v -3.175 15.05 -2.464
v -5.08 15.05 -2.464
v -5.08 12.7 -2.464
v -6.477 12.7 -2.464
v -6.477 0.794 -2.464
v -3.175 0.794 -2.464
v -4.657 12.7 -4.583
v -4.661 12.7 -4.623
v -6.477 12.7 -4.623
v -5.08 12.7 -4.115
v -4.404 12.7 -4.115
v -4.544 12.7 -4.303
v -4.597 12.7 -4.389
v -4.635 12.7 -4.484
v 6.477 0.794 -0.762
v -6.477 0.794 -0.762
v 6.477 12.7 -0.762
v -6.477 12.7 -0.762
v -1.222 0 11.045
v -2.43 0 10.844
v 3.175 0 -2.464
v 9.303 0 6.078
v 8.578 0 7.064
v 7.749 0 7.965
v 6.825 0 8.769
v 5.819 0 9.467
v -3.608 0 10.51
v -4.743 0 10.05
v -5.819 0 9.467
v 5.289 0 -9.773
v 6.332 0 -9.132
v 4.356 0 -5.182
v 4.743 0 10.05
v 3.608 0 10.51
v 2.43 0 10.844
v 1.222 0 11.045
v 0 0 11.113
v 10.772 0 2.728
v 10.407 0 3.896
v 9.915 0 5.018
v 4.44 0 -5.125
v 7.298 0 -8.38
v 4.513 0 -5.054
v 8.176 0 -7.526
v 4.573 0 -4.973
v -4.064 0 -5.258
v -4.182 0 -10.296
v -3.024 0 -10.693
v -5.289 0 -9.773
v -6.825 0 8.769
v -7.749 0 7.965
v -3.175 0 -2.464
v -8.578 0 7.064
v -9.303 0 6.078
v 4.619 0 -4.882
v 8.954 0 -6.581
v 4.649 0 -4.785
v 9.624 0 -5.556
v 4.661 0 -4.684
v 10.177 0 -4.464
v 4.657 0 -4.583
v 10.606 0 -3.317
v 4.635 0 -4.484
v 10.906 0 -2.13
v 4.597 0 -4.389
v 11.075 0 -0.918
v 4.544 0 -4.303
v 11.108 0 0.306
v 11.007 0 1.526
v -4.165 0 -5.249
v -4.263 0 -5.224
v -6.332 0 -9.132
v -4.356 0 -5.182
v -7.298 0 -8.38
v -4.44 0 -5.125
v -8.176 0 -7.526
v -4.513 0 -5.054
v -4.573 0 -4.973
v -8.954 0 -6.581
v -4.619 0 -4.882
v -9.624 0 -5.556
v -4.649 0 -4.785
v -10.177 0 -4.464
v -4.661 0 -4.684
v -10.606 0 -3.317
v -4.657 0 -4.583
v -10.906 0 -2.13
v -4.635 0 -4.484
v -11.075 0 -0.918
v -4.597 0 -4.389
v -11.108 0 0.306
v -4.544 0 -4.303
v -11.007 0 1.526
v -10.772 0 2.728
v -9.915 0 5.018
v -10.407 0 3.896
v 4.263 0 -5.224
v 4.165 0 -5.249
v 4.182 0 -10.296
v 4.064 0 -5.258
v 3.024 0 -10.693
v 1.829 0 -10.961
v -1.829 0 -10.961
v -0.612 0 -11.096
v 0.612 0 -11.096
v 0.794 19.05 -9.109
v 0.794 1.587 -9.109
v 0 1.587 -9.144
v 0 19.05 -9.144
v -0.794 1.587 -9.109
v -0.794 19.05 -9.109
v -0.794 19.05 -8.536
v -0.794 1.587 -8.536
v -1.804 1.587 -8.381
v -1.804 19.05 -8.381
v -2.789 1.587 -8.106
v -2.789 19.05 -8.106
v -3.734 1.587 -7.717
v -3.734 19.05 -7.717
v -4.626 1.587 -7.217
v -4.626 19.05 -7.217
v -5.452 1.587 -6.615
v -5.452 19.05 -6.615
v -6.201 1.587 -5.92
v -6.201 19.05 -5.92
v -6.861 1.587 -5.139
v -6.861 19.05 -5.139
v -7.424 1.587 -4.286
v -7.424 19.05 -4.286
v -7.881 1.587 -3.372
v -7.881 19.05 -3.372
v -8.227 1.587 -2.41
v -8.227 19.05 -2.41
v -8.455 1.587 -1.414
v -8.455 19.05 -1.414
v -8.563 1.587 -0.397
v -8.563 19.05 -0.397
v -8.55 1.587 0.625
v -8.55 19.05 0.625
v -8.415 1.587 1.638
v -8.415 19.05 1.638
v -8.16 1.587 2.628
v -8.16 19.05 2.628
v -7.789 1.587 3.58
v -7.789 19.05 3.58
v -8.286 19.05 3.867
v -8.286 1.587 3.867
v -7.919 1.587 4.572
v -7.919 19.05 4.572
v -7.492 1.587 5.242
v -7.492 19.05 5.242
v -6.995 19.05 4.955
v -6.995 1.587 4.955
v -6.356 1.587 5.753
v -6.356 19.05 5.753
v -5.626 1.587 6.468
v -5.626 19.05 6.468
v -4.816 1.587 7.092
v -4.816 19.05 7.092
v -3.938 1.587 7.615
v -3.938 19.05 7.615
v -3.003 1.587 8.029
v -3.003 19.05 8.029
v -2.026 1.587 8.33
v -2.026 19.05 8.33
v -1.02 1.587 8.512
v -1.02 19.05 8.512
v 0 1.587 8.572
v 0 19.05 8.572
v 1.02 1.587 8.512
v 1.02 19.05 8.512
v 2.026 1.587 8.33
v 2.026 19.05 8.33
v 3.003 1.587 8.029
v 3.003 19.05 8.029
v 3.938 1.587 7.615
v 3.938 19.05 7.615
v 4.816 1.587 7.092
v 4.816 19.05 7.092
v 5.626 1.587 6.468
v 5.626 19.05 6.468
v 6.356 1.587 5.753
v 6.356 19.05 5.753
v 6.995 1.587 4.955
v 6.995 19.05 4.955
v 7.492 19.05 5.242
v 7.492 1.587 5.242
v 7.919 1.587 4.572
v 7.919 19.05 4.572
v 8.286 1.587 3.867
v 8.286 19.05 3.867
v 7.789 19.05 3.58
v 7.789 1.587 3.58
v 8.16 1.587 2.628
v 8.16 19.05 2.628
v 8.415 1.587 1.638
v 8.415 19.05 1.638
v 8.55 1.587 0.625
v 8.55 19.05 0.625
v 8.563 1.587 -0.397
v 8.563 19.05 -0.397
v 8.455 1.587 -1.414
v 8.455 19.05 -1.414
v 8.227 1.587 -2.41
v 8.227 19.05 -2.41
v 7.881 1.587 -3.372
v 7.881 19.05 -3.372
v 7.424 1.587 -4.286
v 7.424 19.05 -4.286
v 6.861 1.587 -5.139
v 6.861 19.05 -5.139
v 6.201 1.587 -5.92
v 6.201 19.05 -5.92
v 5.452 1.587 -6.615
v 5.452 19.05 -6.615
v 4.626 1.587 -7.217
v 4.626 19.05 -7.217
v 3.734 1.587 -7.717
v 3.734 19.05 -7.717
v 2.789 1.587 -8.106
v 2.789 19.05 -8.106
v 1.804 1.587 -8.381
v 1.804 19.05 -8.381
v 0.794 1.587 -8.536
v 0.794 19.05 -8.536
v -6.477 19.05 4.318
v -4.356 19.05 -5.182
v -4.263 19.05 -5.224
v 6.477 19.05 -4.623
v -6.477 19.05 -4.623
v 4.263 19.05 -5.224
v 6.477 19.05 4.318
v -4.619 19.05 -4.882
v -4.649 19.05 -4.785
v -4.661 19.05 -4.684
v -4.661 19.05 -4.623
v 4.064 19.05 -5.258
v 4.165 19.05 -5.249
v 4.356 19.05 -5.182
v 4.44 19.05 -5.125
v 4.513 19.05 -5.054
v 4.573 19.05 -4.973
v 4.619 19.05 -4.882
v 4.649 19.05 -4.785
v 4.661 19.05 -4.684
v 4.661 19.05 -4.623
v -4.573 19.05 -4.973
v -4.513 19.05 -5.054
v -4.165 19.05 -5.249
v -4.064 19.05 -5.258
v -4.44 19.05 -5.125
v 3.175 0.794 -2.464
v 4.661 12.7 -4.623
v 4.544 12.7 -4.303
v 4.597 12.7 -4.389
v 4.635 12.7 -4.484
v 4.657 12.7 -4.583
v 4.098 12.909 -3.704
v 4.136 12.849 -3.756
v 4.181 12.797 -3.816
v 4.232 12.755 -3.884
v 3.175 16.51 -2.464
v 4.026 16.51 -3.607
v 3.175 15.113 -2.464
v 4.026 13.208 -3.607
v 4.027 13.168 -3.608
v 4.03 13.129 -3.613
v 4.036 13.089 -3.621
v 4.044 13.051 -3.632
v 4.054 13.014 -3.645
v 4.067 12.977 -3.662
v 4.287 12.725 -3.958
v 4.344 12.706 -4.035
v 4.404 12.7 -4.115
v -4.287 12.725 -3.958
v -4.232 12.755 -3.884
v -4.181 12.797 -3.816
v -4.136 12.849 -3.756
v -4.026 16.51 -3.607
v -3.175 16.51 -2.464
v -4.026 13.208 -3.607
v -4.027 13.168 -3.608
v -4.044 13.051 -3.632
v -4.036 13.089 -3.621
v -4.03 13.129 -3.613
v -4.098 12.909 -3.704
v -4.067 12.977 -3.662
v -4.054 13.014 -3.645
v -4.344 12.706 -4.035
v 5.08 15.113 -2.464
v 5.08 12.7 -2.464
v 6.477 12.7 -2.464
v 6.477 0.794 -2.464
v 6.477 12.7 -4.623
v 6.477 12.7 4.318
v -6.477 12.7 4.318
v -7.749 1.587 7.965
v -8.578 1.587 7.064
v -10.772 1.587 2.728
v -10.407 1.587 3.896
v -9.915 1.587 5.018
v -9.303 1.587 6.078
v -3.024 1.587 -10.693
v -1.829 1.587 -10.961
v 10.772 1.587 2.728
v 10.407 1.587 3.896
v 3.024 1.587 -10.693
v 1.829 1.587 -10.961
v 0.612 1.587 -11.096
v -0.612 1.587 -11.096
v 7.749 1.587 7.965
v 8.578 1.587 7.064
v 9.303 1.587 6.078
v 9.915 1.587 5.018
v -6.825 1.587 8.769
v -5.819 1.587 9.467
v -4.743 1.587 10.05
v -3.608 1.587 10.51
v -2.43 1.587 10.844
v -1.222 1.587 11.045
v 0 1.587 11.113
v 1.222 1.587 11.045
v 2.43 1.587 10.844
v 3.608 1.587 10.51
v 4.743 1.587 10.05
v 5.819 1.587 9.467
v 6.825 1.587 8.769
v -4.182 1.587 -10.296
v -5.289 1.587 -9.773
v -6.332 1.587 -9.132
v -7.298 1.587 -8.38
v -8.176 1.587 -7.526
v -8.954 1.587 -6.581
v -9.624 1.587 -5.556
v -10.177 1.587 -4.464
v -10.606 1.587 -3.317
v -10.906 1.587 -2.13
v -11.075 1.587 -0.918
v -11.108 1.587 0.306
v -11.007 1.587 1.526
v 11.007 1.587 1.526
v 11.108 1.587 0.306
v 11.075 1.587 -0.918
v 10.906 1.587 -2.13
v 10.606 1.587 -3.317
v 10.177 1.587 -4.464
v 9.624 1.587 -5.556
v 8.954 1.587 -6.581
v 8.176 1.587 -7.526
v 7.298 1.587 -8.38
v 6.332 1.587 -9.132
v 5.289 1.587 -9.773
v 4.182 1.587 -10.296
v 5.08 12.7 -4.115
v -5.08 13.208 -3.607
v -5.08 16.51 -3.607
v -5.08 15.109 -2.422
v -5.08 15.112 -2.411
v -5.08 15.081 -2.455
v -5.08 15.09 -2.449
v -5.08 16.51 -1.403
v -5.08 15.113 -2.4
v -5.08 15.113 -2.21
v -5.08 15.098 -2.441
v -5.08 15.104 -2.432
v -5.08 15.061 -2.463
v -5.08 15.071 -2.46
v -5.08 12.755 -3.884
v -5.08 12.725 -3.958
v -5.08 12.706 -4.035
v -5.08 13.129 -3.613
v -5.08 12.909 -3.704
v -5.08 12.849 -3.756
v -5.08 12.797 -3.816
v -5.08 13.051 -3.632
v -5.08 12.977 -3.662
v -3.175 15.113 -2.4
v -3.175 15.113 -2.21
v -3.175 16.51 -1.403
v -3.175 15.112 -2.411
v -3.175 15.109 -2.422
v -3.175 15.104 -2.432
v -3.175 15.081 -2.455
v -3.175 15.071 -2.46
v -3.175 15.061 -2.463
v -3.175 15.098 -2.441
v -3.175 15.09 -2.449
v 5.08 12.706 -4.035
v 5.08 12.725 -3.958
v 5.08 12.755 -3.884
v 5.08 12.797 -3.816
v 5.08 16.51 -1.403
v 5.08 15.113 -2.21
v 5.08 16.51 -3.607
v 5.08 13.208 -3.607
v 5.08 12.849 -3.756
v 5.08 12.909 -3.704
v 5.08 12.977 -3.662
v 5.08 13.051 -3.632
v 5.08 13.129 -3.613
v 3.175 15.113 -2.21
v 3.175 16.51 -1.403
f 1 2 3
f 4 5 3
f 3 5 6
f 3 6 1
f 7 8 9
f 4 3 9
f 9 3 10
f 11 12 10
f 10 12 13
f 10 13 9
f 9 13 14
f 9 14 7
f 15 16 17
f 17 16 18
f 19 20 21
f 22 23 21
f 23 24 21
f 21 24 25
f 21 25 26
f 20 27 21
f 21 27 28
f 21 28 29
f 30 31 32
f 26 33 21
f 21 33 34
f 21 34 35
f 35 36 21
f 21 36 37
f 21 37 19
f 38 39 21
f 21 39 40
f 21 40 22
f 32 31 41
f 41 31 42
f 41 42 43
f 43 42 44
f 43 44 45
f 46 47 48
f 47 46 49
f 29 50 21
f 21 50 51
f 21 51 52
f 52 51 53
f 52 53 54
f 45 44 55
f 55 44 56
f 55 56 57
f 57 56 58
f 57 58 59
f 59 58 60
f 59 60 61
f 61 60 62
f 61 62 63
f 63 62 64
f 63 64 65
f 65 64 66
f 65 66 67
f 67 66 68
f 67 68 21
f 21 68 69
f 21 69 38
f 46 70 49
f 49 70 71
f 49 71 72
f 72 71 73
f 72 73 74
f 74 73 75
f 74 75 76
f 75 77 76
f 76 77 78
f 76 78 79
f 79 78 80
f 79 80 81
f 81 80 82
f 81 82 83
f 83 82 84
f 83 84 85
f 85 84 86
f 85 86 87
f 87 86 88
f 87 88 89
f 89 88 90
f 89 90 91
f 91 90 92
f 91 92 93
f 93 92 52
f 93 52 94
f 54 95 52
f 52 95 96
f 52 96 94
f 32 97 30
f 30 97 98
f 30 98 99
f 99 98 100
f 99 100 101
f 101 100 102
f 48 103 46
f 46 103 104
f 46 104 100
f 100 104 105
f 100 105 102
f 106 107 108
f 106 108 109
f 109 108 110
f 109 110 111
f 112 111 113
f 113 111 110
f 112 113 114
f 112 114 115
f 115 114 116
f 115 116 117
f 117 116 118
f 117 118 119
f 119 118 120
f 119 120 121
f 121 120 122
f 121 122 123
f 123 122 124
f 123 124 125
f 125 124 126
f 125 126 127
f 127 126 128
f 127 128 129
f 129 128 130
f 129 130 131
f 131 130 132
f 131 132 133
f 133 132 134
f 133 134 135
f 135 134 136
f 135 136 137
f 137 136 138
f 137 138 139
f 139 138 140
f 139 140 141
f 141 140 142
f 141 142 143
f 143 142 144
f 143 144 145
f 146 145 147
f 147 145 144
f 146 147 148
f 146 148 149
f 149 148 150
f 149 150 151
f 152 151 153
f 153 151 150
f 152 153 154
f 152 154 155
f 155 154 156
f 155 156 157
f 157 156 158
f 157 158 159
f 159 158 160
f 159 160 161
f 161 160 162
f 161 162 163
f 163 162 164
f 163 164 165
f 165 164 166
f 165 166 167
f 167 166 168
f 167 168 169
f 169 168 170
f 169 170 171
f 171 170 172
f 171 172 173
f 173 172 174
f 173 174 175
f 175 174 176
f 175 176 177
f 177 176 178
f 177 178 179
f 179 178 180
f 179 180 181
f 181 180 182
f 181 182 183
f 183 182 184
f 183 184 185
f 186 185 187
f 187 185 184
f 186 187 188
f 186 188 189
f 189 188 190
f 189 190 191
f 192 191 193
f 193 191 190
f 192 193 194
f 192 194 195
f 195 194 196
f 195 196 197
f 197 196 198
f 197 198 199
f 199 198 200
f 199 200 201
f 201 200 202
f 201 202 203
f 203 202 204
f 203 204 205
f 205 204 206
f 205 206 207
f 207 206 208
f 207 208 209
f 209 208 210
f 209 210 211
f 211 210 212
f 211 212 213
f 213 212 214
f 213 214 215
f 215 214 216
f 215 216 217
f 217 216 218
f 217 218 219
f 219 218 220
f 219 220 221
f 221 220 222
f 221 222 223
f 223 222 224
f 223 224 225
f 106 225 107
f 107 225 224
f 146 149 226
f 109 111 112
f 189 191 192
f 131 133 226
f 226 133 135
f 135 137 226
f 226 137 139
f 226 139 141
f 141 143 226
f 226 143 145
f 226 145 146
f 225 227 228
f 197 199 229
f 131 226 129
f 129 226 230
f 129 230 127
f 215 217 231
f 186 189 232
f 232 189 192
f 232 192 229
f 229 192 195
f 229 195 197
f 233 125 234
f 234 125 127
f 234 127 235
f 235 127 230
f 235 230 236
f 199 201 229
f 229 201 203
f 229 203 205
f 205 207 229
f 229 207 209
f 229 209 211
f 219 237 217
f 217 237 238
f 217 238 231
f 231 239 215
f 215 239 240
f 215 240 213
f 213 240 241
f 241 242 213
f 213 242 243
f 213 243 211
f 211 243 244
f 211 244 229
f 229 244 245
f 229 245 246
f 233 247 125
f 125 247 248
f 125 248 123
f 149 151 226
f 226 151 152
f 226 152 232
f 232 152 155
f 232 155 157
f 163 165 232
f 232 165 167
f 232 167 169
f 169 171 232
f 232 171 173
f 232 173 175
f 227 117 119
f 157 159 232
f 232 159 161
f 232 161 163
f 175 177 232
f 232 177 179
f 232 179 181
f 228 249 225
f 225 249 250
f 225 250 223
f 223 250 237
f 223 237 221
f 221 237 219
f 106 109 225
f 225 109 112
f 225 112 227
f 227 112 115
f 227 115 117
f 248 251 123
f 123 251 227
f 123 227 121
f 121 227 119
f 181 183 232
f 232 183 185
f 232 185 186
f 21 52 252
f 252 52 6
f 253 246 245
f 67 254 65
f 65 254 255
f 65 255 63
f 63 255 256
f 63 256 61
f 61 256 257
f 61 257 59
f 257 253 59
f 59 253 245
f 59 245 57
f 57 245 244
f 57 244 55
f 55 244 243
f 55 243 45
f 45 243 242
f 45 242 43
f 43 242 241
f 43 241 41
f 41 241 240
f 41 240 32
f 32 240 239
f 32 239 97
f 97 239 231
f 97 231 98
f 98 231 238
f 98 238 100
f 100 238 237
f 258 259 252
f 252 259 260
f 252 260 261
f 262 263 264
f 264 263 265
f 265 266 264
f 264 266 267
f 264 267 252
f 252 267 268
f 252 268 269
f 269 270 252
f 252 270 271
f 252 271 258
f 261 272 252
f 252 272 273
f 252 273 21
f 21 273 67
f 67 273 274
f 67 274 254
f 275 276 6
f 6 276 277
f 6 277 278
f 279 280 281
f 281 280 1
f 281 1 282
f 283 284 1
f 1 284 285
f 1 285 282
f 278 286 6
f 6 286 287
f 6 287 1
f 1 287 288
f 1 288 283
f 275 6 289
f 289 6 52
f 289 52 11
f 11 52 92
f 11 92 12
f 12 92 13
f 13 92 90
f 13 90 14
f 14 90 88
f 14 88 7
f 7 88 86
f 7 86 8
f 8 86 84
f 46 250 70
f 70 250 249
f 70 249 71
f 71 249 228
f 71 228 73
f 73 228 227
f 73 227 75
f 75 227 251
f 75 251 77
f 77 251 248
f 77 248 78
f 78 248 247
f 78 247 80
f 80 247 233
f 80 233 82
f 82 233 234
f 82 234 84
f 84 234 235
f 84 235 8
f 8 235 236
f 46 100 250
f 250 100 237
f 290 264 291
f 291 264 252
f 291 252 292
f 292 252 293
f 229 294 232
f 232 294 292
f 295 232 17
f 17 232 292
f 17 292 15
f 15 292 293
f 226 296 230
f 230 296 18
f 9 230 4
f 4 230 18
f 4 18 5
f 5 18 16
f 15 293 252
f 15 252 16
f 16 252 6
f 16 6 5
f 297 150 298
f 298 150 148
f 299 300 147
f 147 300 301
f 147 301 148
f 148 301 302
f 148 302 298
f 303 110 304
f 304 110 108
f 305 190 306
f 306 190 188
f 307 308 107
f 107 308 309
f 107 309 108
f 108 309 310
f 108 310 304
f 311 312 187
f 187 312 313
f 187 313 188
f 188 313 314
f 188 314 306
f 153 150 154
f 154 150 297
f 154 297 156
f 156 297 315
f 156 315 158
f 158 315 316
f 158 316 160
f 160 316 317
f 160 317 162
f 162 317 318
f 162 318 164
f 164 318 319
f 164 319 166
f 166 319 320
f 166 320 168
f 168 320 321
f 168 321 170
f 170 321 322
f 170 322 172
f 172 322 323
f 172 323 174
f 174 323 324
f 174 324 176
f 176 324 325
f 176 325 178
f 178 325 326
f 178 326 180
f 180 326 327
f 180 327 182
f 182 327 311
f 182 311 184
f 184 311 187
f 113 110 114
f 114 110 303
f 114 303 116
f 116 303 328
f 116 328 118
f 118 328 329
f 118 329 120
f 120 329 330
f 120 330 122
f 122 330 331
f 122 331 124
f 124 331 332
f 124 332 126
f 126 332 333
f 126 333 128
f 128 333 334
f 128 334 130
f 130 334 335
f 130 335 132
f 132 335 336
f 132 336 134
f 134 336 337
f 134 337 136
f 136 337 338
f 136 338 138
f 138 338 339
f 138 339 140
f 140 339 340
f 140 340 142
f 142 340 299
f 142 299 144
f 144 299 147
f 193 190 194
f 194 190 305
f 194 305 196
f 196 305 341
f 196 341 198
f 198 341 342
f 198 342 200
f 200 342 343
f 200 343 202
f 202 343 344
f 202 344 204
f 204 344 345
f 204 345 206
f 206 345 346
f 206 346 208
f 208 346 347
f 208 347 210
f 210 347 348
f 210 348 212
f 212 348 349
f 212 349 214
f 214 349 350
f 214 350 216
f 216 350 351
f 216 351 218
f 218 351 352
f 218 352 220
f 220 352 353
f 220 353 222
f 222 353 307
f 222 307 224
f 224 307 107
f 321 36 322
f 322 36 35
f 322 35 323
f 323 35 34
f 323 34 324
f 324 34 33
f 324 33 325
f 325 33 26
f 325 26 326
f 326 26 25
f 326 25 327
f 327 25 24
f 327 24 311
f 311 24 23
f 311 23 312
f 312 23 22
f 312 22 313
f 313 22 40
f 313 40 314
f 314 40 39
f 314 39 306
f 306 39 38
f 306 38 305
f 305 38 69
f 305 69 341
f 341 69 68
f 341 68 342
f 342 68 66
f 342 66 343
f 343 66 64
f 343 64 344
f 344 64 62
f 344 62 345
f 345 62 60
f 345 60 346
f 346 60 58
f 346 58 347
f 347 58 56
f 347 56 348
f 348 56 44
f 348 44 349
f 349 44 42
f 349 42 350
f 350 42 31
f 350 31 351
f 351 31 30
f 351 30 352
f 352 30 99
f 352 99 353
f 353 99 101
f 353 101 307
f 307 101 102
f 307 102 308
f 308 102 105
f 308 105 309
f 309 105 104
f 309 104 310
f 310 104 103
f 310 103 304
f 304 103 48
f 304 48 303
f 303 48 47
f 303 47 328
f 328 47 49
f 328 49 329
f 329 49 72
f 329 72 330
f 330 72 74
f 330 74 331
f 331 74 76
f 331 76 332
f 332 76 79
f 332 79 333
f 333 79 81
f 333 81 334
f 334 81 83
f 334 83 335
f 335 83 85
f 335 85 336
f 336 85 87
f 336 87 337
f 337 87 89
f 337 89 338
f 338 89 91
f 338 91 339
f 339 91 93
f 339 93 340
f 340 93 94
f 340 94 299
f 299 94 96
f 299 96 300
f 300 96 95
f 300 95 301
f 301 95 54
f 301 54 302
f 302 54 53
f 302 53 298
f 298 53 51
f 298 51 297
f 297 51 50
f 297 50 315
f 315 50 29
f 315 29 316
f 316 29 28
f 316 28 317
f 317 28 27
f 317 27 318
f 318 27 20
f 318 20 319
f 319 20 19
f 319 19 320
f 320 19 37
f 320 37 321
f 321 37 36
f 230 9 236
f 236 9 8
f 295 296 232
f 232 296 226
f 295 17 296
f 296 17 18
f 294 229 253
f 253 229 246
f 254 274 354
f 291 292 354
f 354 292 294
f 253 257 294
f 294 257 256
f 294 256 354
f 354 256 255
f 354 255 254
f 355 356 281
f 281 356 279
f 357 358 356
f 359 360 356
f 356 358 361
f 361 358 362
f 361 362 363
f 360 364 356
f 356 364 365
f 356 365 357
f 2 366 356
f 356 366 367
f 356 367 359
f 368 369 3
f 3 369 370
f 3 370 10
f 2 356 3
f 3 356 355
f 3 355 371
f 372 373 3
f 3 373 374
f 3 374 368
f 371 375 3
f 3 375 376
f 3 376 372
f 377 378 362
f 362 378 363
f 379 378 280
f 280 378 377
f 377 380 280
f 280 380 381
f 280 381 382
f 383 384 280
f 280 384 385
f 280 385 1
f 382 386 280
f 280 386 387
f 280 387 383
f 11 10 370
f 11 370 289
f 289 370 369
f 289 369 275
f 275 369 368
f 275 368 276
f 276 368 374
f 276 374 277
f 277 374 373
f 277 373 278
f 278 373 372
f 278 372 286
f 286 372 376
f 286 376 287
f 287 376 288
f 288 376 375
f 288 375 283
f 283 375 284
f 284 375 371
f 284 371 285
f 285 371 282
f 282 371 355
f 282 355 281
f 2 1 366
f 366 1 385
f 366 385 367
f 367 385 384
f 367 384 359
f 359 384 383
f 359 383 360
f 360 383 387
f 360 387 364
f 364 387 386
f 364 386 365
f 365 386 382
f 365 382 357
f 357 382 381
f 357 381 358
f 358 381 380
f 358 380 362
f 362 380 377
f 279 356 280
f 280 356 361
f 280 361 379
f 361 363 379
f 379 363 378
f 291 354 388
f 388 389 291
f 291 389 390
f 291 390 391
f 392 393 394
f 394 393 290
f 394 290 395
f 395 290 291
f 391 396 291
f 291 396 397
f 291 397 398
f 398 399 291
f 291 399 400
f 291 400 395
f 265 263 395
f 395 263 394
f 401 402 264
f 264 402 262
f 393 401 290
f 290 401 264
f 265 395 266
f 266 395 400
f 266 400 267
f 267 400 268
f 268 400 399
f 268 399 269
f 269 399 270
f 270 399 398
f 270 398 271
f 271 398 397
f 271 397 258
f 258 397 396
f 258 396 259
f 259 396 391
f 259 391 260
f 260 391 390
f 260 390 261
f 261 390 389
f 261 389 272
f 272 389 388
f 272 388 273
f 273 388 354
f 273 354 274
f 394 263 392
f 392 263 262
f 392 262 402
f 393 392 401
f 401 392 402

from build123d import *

# Parameters (mm, degrees)
BOSS_EXTRUDE1_DEPTH  = 19.05
CUT_EXTRUDE1_DEPTH   = 23.803574111
CUT_EXTRUDE2_DEPTH   = 18.25625
SKETCH6_W            = 0.608326788
SKETCH6_H            = 1.5875
SKETCH8_W            = 2.576826788
SKETCH8_H            = 1.5875
SKETCH9_W            = 12.954
SKETCH9_H            = 5.08
SKETCH9_H_2          = 2.159
CUT_EXTRUDE3_DEPTH   = 6.35
BOSS_EXTRUDE2_DEPTH  = 2.54
SKETCH11_W           = 1.905
SKETCH11_H           = 0.127
BOSS_EXTRUDE3_DEPTH  = 0.254
FILLET1_R            = 0.508
FILLET2_R            = 0.0635
BOSS_EXTRUDE4_DEPTH  = 1.27
BOSS_EXTRUDE5_DEPTH  = 1.905
FILLET1_OF_MIRROR1_R = 0.508


with BuildPart() as part:
    # Sketch1 → Boss-Extrude1 (new body)
    with BuildSketch(Plane(origin=(0, 0, 0), x_dir=(1, 0, 0), z_dir=(0, 1, 0))):
        with BuildLine():
            Line((-0.79375, 9.109483901), (-0.79375, 8.535673212))
            ThreePointArc((-0.79375, 8.535673212), (-7.424002774, 4.28625), (-7.78898484, -3.580428942))
            Line((-7.78898484, -3.580428942), (-8.285919473, -3.867334286))
            ThreePointArc((-8.285919473, -3.867334286), (-7.918936292, -4.572), (-7.492169473, -5.242149615))
            Line((-7.492169473, -5.242149615), (-6.99523484, -4.95524427))
            ThreePointArc((-6.99523484, -4.95524427), (0, -8.5725), (6.99523484, -4.95524427))
            Line((6.99523484, -4.95524427), (7.492169473, -5.242149615))
            ThreePointArc((7.492169473, -5.242149615), (7.918936292, -4.572), (8.285919473, -3.867334286))
            Line((8.285919473, -3.867334286), (7.78898484, -3.580428942))
            ThreePointArc((7.78898484, -3.580428942), (7.424002774, 4.28625), (0.79375, 8.535673212))
            Line((0.79375, 8.535673212), (0.79375, 9.109483901))
            ThreePointArc((0.79375, 9.109483901), (0, 9.144), (-0.79375, 9.109483901))
        make_face()
    extrude(amount=BOSS_EXTRUDE1_DEPTH)

    # Sketch2 → Cut-Extrude1 (cut, through all)
    with BuildSketch(Plane(origin=(0, 19.05, 0), x_dir=(1, 0, 0), z_dir=(0, 1, 0))):
        with BuildLine():
            Line((-4.543615348, 4.303093955), (-3.175, 2.4638))
            Line((-3.175, 2.4638), (3.175, 2.4638))
            Line((3.175, 2.4638), (4.543615348, 4.303093955))
            ThreePointArc((4.543615348, 4.303093955), (4.598203733, 4.928342625), (4.064, 5.2578))
            Line((4.064, 5.2578), (-4.064, 5.2578))
            ThreePointArc((-4.064, 5.2578), (-4.598203733, 4.928342625), (-4.543615348, 4.303093955))
        make_face()
    extrude(amount=-CUT_EXTRUDE1_DEPTH, mode=Mode.SUBTRACT)

    # Sketch2<4> → Cut-Extrude2 (cut)
    with BuildSketch(Plane(origin=(0, 19.05, 0), x_dir=(1, 0, 0), z_dir=(0, 1, 0))):
        Polygon((3.175, 2.4638), (-3.175, 2.4638), (-6.477, 2.4638), (-6.477, 0.762), (6.477, 0.762), (6.477, 2.4638), align=None)
    extrude(amount=-CUT_EXTRUDE2_DEPTH, mode=Mode.SUBTRACT)

    # Sketch6 → Cut-Revolve2 (revolve, cut)
    with BuildSketch(Plane(origin=(0, 0, 0), x_dir=(0, 0, -1), z_dir=(1, 0, 0))):
        with Locations((8.839836606, 0.79375)):
            Rectangle(SKETCH6_W, SKETCH6_H)
    revolve(axis=Axis((0, 19.730213777, 0), (0, -1, 0)), mode=Mode.SUBTRACT)

    # Sketch8 → Revolve2 (revolve)
    with BuildSketch(Plane(origin=(0, 0, 0), x_dir=(0, 0, -1), z_dir=(1, 0, 0))):
        with Locations((9.824086606, 0.79375)):
            Rectangle(SKETCH8_W, SKETCH8_H)
    revolve(axis=Axis((0, 4.48386458, 0), (0, -1, 0)))

    # Sketch9 → Cut-Extrude3 (cut)
    with BuildSketch(Plane(origin=(0, 19.05, 0), x_dir=(1, 0, 0), z_dir=(0, 1, 0))):
        with Locations((0, -1.778)):
            Rectangle(SKETCH9_W, SKETCH9_H)
        with Locations((0, 3.5433)):
            Rectangle(SKETCH9_W, SKETCH9_H_2)
    extrude(amount=-CUT_EXTRUDE3_DEPTH, mode=Mode.SUBTRACT)

    # Sketch10 → Boss-Extrude2 (add)
    with BuildSketch(Plane(origin=(0, 12.7, 0), x_dir=(1, 0, 0), z_dir=(0, 1, 0))):
        Polygon((-3.175, 2.4638), (-4.025504259, 3.6068), (-5.08, 3.6068), (-5.08, 2.4638), align=None)
    boss_extrude2 = extrude(amount=BOSS_EXTRUDE2_DEPTH)

    # Sketch11 → Boss-Extrude3 (add)
    with BuildSketch(Plane.XY.offset(-2.4638)):
        with Locations((-4.1275, 15.1765)):
            Rectangle(SKETCH11_W, SKETCH11_H)
    boss_extrude3 = extrude(amount=BOSS_EXTRUDE3_DEPTH)

    # Fillet1
    fillet1_edges = [part.edges().sort_by_distance(p)[0] for p in [
        (-4.55275213, 12.7, -3.6068),
    ]]
    fillet(fillet1_edges, radius=FILLET1_R)

    # Fillet2
    fillet2_edges = [part.edges().sort_by_distance(p)[0] for p in [
        (-4.1275, 15.113, -2.4638),
    ]]
    fillet(fillet2_edges, radius=FILLET2_R)

    # Sketch12 → Boss-Extrude4 (add)
    with BuildSketch(Plane(origin=(0, 15.24, 0), x_dir=(1, 0, 0), z_dir=(0, 1, 0))):
        Polygon((-3.175, 2.2098), (-3.175, 2.4638), (-4.025504259, 3.6068), (-5.08, 3.6068), (-5.08, 2.2098), align=None)
    boss_extrude4 = extrude(amount=BOSS_EXTRUDE4_DEPTH)

    # Sketch13 → Boss-Extrude5 (add)
    with BuildSketch(Plane(origin=(-3.175, 0, 0), x_dir=(0, 0, -1), z_dir=(1, 0, 0))):
        Polygon((2.2098, 15.113), (1.403241674, 16.51), (2.2098, 16.51), align=None)
    boss_extrude5 = extrude(amount=-BOSS_EXTRUDE5_DEPTH)

    # Mirror1: Boss-Extrude2, Boss-Extrude3, Boss-Extrude4, Boss-Extrude5 across plane
    add(boss_extrude2.mirror(Plane(origin=(0, 0, 0), x_dir=(0, 0, 1), z_dir=(1, 0, 0))))
    add(boss_extrude3.mirror(Plane(origin=(0, 0, 0), x_dir=(0, 0, 1), z_dir=(1, 0, 0))))
    add(boss_extrude4.mirror(Plane(origin=(0, 0, 0), x_dir=(0, 0, 1), z_dir=(1, 0, 0))))
    add(boss_extrude5.mirror(Plane(origin=(0, 0, 0), x_dir=(0, 0, 1), z_dir=(1, 0, 0))))

    # Fillet1 of Mirror1
    fillet1_of_mirror1_edges = [part.edges().sort_by_distance(p)[0] for p in [
        (4.55275213, 12.7, -3.6068),
    ]]
    fillet(fillet1_of_mirror1_edges, radius=FILLET1_OF_MIRROR1_R)


solid = part.part
